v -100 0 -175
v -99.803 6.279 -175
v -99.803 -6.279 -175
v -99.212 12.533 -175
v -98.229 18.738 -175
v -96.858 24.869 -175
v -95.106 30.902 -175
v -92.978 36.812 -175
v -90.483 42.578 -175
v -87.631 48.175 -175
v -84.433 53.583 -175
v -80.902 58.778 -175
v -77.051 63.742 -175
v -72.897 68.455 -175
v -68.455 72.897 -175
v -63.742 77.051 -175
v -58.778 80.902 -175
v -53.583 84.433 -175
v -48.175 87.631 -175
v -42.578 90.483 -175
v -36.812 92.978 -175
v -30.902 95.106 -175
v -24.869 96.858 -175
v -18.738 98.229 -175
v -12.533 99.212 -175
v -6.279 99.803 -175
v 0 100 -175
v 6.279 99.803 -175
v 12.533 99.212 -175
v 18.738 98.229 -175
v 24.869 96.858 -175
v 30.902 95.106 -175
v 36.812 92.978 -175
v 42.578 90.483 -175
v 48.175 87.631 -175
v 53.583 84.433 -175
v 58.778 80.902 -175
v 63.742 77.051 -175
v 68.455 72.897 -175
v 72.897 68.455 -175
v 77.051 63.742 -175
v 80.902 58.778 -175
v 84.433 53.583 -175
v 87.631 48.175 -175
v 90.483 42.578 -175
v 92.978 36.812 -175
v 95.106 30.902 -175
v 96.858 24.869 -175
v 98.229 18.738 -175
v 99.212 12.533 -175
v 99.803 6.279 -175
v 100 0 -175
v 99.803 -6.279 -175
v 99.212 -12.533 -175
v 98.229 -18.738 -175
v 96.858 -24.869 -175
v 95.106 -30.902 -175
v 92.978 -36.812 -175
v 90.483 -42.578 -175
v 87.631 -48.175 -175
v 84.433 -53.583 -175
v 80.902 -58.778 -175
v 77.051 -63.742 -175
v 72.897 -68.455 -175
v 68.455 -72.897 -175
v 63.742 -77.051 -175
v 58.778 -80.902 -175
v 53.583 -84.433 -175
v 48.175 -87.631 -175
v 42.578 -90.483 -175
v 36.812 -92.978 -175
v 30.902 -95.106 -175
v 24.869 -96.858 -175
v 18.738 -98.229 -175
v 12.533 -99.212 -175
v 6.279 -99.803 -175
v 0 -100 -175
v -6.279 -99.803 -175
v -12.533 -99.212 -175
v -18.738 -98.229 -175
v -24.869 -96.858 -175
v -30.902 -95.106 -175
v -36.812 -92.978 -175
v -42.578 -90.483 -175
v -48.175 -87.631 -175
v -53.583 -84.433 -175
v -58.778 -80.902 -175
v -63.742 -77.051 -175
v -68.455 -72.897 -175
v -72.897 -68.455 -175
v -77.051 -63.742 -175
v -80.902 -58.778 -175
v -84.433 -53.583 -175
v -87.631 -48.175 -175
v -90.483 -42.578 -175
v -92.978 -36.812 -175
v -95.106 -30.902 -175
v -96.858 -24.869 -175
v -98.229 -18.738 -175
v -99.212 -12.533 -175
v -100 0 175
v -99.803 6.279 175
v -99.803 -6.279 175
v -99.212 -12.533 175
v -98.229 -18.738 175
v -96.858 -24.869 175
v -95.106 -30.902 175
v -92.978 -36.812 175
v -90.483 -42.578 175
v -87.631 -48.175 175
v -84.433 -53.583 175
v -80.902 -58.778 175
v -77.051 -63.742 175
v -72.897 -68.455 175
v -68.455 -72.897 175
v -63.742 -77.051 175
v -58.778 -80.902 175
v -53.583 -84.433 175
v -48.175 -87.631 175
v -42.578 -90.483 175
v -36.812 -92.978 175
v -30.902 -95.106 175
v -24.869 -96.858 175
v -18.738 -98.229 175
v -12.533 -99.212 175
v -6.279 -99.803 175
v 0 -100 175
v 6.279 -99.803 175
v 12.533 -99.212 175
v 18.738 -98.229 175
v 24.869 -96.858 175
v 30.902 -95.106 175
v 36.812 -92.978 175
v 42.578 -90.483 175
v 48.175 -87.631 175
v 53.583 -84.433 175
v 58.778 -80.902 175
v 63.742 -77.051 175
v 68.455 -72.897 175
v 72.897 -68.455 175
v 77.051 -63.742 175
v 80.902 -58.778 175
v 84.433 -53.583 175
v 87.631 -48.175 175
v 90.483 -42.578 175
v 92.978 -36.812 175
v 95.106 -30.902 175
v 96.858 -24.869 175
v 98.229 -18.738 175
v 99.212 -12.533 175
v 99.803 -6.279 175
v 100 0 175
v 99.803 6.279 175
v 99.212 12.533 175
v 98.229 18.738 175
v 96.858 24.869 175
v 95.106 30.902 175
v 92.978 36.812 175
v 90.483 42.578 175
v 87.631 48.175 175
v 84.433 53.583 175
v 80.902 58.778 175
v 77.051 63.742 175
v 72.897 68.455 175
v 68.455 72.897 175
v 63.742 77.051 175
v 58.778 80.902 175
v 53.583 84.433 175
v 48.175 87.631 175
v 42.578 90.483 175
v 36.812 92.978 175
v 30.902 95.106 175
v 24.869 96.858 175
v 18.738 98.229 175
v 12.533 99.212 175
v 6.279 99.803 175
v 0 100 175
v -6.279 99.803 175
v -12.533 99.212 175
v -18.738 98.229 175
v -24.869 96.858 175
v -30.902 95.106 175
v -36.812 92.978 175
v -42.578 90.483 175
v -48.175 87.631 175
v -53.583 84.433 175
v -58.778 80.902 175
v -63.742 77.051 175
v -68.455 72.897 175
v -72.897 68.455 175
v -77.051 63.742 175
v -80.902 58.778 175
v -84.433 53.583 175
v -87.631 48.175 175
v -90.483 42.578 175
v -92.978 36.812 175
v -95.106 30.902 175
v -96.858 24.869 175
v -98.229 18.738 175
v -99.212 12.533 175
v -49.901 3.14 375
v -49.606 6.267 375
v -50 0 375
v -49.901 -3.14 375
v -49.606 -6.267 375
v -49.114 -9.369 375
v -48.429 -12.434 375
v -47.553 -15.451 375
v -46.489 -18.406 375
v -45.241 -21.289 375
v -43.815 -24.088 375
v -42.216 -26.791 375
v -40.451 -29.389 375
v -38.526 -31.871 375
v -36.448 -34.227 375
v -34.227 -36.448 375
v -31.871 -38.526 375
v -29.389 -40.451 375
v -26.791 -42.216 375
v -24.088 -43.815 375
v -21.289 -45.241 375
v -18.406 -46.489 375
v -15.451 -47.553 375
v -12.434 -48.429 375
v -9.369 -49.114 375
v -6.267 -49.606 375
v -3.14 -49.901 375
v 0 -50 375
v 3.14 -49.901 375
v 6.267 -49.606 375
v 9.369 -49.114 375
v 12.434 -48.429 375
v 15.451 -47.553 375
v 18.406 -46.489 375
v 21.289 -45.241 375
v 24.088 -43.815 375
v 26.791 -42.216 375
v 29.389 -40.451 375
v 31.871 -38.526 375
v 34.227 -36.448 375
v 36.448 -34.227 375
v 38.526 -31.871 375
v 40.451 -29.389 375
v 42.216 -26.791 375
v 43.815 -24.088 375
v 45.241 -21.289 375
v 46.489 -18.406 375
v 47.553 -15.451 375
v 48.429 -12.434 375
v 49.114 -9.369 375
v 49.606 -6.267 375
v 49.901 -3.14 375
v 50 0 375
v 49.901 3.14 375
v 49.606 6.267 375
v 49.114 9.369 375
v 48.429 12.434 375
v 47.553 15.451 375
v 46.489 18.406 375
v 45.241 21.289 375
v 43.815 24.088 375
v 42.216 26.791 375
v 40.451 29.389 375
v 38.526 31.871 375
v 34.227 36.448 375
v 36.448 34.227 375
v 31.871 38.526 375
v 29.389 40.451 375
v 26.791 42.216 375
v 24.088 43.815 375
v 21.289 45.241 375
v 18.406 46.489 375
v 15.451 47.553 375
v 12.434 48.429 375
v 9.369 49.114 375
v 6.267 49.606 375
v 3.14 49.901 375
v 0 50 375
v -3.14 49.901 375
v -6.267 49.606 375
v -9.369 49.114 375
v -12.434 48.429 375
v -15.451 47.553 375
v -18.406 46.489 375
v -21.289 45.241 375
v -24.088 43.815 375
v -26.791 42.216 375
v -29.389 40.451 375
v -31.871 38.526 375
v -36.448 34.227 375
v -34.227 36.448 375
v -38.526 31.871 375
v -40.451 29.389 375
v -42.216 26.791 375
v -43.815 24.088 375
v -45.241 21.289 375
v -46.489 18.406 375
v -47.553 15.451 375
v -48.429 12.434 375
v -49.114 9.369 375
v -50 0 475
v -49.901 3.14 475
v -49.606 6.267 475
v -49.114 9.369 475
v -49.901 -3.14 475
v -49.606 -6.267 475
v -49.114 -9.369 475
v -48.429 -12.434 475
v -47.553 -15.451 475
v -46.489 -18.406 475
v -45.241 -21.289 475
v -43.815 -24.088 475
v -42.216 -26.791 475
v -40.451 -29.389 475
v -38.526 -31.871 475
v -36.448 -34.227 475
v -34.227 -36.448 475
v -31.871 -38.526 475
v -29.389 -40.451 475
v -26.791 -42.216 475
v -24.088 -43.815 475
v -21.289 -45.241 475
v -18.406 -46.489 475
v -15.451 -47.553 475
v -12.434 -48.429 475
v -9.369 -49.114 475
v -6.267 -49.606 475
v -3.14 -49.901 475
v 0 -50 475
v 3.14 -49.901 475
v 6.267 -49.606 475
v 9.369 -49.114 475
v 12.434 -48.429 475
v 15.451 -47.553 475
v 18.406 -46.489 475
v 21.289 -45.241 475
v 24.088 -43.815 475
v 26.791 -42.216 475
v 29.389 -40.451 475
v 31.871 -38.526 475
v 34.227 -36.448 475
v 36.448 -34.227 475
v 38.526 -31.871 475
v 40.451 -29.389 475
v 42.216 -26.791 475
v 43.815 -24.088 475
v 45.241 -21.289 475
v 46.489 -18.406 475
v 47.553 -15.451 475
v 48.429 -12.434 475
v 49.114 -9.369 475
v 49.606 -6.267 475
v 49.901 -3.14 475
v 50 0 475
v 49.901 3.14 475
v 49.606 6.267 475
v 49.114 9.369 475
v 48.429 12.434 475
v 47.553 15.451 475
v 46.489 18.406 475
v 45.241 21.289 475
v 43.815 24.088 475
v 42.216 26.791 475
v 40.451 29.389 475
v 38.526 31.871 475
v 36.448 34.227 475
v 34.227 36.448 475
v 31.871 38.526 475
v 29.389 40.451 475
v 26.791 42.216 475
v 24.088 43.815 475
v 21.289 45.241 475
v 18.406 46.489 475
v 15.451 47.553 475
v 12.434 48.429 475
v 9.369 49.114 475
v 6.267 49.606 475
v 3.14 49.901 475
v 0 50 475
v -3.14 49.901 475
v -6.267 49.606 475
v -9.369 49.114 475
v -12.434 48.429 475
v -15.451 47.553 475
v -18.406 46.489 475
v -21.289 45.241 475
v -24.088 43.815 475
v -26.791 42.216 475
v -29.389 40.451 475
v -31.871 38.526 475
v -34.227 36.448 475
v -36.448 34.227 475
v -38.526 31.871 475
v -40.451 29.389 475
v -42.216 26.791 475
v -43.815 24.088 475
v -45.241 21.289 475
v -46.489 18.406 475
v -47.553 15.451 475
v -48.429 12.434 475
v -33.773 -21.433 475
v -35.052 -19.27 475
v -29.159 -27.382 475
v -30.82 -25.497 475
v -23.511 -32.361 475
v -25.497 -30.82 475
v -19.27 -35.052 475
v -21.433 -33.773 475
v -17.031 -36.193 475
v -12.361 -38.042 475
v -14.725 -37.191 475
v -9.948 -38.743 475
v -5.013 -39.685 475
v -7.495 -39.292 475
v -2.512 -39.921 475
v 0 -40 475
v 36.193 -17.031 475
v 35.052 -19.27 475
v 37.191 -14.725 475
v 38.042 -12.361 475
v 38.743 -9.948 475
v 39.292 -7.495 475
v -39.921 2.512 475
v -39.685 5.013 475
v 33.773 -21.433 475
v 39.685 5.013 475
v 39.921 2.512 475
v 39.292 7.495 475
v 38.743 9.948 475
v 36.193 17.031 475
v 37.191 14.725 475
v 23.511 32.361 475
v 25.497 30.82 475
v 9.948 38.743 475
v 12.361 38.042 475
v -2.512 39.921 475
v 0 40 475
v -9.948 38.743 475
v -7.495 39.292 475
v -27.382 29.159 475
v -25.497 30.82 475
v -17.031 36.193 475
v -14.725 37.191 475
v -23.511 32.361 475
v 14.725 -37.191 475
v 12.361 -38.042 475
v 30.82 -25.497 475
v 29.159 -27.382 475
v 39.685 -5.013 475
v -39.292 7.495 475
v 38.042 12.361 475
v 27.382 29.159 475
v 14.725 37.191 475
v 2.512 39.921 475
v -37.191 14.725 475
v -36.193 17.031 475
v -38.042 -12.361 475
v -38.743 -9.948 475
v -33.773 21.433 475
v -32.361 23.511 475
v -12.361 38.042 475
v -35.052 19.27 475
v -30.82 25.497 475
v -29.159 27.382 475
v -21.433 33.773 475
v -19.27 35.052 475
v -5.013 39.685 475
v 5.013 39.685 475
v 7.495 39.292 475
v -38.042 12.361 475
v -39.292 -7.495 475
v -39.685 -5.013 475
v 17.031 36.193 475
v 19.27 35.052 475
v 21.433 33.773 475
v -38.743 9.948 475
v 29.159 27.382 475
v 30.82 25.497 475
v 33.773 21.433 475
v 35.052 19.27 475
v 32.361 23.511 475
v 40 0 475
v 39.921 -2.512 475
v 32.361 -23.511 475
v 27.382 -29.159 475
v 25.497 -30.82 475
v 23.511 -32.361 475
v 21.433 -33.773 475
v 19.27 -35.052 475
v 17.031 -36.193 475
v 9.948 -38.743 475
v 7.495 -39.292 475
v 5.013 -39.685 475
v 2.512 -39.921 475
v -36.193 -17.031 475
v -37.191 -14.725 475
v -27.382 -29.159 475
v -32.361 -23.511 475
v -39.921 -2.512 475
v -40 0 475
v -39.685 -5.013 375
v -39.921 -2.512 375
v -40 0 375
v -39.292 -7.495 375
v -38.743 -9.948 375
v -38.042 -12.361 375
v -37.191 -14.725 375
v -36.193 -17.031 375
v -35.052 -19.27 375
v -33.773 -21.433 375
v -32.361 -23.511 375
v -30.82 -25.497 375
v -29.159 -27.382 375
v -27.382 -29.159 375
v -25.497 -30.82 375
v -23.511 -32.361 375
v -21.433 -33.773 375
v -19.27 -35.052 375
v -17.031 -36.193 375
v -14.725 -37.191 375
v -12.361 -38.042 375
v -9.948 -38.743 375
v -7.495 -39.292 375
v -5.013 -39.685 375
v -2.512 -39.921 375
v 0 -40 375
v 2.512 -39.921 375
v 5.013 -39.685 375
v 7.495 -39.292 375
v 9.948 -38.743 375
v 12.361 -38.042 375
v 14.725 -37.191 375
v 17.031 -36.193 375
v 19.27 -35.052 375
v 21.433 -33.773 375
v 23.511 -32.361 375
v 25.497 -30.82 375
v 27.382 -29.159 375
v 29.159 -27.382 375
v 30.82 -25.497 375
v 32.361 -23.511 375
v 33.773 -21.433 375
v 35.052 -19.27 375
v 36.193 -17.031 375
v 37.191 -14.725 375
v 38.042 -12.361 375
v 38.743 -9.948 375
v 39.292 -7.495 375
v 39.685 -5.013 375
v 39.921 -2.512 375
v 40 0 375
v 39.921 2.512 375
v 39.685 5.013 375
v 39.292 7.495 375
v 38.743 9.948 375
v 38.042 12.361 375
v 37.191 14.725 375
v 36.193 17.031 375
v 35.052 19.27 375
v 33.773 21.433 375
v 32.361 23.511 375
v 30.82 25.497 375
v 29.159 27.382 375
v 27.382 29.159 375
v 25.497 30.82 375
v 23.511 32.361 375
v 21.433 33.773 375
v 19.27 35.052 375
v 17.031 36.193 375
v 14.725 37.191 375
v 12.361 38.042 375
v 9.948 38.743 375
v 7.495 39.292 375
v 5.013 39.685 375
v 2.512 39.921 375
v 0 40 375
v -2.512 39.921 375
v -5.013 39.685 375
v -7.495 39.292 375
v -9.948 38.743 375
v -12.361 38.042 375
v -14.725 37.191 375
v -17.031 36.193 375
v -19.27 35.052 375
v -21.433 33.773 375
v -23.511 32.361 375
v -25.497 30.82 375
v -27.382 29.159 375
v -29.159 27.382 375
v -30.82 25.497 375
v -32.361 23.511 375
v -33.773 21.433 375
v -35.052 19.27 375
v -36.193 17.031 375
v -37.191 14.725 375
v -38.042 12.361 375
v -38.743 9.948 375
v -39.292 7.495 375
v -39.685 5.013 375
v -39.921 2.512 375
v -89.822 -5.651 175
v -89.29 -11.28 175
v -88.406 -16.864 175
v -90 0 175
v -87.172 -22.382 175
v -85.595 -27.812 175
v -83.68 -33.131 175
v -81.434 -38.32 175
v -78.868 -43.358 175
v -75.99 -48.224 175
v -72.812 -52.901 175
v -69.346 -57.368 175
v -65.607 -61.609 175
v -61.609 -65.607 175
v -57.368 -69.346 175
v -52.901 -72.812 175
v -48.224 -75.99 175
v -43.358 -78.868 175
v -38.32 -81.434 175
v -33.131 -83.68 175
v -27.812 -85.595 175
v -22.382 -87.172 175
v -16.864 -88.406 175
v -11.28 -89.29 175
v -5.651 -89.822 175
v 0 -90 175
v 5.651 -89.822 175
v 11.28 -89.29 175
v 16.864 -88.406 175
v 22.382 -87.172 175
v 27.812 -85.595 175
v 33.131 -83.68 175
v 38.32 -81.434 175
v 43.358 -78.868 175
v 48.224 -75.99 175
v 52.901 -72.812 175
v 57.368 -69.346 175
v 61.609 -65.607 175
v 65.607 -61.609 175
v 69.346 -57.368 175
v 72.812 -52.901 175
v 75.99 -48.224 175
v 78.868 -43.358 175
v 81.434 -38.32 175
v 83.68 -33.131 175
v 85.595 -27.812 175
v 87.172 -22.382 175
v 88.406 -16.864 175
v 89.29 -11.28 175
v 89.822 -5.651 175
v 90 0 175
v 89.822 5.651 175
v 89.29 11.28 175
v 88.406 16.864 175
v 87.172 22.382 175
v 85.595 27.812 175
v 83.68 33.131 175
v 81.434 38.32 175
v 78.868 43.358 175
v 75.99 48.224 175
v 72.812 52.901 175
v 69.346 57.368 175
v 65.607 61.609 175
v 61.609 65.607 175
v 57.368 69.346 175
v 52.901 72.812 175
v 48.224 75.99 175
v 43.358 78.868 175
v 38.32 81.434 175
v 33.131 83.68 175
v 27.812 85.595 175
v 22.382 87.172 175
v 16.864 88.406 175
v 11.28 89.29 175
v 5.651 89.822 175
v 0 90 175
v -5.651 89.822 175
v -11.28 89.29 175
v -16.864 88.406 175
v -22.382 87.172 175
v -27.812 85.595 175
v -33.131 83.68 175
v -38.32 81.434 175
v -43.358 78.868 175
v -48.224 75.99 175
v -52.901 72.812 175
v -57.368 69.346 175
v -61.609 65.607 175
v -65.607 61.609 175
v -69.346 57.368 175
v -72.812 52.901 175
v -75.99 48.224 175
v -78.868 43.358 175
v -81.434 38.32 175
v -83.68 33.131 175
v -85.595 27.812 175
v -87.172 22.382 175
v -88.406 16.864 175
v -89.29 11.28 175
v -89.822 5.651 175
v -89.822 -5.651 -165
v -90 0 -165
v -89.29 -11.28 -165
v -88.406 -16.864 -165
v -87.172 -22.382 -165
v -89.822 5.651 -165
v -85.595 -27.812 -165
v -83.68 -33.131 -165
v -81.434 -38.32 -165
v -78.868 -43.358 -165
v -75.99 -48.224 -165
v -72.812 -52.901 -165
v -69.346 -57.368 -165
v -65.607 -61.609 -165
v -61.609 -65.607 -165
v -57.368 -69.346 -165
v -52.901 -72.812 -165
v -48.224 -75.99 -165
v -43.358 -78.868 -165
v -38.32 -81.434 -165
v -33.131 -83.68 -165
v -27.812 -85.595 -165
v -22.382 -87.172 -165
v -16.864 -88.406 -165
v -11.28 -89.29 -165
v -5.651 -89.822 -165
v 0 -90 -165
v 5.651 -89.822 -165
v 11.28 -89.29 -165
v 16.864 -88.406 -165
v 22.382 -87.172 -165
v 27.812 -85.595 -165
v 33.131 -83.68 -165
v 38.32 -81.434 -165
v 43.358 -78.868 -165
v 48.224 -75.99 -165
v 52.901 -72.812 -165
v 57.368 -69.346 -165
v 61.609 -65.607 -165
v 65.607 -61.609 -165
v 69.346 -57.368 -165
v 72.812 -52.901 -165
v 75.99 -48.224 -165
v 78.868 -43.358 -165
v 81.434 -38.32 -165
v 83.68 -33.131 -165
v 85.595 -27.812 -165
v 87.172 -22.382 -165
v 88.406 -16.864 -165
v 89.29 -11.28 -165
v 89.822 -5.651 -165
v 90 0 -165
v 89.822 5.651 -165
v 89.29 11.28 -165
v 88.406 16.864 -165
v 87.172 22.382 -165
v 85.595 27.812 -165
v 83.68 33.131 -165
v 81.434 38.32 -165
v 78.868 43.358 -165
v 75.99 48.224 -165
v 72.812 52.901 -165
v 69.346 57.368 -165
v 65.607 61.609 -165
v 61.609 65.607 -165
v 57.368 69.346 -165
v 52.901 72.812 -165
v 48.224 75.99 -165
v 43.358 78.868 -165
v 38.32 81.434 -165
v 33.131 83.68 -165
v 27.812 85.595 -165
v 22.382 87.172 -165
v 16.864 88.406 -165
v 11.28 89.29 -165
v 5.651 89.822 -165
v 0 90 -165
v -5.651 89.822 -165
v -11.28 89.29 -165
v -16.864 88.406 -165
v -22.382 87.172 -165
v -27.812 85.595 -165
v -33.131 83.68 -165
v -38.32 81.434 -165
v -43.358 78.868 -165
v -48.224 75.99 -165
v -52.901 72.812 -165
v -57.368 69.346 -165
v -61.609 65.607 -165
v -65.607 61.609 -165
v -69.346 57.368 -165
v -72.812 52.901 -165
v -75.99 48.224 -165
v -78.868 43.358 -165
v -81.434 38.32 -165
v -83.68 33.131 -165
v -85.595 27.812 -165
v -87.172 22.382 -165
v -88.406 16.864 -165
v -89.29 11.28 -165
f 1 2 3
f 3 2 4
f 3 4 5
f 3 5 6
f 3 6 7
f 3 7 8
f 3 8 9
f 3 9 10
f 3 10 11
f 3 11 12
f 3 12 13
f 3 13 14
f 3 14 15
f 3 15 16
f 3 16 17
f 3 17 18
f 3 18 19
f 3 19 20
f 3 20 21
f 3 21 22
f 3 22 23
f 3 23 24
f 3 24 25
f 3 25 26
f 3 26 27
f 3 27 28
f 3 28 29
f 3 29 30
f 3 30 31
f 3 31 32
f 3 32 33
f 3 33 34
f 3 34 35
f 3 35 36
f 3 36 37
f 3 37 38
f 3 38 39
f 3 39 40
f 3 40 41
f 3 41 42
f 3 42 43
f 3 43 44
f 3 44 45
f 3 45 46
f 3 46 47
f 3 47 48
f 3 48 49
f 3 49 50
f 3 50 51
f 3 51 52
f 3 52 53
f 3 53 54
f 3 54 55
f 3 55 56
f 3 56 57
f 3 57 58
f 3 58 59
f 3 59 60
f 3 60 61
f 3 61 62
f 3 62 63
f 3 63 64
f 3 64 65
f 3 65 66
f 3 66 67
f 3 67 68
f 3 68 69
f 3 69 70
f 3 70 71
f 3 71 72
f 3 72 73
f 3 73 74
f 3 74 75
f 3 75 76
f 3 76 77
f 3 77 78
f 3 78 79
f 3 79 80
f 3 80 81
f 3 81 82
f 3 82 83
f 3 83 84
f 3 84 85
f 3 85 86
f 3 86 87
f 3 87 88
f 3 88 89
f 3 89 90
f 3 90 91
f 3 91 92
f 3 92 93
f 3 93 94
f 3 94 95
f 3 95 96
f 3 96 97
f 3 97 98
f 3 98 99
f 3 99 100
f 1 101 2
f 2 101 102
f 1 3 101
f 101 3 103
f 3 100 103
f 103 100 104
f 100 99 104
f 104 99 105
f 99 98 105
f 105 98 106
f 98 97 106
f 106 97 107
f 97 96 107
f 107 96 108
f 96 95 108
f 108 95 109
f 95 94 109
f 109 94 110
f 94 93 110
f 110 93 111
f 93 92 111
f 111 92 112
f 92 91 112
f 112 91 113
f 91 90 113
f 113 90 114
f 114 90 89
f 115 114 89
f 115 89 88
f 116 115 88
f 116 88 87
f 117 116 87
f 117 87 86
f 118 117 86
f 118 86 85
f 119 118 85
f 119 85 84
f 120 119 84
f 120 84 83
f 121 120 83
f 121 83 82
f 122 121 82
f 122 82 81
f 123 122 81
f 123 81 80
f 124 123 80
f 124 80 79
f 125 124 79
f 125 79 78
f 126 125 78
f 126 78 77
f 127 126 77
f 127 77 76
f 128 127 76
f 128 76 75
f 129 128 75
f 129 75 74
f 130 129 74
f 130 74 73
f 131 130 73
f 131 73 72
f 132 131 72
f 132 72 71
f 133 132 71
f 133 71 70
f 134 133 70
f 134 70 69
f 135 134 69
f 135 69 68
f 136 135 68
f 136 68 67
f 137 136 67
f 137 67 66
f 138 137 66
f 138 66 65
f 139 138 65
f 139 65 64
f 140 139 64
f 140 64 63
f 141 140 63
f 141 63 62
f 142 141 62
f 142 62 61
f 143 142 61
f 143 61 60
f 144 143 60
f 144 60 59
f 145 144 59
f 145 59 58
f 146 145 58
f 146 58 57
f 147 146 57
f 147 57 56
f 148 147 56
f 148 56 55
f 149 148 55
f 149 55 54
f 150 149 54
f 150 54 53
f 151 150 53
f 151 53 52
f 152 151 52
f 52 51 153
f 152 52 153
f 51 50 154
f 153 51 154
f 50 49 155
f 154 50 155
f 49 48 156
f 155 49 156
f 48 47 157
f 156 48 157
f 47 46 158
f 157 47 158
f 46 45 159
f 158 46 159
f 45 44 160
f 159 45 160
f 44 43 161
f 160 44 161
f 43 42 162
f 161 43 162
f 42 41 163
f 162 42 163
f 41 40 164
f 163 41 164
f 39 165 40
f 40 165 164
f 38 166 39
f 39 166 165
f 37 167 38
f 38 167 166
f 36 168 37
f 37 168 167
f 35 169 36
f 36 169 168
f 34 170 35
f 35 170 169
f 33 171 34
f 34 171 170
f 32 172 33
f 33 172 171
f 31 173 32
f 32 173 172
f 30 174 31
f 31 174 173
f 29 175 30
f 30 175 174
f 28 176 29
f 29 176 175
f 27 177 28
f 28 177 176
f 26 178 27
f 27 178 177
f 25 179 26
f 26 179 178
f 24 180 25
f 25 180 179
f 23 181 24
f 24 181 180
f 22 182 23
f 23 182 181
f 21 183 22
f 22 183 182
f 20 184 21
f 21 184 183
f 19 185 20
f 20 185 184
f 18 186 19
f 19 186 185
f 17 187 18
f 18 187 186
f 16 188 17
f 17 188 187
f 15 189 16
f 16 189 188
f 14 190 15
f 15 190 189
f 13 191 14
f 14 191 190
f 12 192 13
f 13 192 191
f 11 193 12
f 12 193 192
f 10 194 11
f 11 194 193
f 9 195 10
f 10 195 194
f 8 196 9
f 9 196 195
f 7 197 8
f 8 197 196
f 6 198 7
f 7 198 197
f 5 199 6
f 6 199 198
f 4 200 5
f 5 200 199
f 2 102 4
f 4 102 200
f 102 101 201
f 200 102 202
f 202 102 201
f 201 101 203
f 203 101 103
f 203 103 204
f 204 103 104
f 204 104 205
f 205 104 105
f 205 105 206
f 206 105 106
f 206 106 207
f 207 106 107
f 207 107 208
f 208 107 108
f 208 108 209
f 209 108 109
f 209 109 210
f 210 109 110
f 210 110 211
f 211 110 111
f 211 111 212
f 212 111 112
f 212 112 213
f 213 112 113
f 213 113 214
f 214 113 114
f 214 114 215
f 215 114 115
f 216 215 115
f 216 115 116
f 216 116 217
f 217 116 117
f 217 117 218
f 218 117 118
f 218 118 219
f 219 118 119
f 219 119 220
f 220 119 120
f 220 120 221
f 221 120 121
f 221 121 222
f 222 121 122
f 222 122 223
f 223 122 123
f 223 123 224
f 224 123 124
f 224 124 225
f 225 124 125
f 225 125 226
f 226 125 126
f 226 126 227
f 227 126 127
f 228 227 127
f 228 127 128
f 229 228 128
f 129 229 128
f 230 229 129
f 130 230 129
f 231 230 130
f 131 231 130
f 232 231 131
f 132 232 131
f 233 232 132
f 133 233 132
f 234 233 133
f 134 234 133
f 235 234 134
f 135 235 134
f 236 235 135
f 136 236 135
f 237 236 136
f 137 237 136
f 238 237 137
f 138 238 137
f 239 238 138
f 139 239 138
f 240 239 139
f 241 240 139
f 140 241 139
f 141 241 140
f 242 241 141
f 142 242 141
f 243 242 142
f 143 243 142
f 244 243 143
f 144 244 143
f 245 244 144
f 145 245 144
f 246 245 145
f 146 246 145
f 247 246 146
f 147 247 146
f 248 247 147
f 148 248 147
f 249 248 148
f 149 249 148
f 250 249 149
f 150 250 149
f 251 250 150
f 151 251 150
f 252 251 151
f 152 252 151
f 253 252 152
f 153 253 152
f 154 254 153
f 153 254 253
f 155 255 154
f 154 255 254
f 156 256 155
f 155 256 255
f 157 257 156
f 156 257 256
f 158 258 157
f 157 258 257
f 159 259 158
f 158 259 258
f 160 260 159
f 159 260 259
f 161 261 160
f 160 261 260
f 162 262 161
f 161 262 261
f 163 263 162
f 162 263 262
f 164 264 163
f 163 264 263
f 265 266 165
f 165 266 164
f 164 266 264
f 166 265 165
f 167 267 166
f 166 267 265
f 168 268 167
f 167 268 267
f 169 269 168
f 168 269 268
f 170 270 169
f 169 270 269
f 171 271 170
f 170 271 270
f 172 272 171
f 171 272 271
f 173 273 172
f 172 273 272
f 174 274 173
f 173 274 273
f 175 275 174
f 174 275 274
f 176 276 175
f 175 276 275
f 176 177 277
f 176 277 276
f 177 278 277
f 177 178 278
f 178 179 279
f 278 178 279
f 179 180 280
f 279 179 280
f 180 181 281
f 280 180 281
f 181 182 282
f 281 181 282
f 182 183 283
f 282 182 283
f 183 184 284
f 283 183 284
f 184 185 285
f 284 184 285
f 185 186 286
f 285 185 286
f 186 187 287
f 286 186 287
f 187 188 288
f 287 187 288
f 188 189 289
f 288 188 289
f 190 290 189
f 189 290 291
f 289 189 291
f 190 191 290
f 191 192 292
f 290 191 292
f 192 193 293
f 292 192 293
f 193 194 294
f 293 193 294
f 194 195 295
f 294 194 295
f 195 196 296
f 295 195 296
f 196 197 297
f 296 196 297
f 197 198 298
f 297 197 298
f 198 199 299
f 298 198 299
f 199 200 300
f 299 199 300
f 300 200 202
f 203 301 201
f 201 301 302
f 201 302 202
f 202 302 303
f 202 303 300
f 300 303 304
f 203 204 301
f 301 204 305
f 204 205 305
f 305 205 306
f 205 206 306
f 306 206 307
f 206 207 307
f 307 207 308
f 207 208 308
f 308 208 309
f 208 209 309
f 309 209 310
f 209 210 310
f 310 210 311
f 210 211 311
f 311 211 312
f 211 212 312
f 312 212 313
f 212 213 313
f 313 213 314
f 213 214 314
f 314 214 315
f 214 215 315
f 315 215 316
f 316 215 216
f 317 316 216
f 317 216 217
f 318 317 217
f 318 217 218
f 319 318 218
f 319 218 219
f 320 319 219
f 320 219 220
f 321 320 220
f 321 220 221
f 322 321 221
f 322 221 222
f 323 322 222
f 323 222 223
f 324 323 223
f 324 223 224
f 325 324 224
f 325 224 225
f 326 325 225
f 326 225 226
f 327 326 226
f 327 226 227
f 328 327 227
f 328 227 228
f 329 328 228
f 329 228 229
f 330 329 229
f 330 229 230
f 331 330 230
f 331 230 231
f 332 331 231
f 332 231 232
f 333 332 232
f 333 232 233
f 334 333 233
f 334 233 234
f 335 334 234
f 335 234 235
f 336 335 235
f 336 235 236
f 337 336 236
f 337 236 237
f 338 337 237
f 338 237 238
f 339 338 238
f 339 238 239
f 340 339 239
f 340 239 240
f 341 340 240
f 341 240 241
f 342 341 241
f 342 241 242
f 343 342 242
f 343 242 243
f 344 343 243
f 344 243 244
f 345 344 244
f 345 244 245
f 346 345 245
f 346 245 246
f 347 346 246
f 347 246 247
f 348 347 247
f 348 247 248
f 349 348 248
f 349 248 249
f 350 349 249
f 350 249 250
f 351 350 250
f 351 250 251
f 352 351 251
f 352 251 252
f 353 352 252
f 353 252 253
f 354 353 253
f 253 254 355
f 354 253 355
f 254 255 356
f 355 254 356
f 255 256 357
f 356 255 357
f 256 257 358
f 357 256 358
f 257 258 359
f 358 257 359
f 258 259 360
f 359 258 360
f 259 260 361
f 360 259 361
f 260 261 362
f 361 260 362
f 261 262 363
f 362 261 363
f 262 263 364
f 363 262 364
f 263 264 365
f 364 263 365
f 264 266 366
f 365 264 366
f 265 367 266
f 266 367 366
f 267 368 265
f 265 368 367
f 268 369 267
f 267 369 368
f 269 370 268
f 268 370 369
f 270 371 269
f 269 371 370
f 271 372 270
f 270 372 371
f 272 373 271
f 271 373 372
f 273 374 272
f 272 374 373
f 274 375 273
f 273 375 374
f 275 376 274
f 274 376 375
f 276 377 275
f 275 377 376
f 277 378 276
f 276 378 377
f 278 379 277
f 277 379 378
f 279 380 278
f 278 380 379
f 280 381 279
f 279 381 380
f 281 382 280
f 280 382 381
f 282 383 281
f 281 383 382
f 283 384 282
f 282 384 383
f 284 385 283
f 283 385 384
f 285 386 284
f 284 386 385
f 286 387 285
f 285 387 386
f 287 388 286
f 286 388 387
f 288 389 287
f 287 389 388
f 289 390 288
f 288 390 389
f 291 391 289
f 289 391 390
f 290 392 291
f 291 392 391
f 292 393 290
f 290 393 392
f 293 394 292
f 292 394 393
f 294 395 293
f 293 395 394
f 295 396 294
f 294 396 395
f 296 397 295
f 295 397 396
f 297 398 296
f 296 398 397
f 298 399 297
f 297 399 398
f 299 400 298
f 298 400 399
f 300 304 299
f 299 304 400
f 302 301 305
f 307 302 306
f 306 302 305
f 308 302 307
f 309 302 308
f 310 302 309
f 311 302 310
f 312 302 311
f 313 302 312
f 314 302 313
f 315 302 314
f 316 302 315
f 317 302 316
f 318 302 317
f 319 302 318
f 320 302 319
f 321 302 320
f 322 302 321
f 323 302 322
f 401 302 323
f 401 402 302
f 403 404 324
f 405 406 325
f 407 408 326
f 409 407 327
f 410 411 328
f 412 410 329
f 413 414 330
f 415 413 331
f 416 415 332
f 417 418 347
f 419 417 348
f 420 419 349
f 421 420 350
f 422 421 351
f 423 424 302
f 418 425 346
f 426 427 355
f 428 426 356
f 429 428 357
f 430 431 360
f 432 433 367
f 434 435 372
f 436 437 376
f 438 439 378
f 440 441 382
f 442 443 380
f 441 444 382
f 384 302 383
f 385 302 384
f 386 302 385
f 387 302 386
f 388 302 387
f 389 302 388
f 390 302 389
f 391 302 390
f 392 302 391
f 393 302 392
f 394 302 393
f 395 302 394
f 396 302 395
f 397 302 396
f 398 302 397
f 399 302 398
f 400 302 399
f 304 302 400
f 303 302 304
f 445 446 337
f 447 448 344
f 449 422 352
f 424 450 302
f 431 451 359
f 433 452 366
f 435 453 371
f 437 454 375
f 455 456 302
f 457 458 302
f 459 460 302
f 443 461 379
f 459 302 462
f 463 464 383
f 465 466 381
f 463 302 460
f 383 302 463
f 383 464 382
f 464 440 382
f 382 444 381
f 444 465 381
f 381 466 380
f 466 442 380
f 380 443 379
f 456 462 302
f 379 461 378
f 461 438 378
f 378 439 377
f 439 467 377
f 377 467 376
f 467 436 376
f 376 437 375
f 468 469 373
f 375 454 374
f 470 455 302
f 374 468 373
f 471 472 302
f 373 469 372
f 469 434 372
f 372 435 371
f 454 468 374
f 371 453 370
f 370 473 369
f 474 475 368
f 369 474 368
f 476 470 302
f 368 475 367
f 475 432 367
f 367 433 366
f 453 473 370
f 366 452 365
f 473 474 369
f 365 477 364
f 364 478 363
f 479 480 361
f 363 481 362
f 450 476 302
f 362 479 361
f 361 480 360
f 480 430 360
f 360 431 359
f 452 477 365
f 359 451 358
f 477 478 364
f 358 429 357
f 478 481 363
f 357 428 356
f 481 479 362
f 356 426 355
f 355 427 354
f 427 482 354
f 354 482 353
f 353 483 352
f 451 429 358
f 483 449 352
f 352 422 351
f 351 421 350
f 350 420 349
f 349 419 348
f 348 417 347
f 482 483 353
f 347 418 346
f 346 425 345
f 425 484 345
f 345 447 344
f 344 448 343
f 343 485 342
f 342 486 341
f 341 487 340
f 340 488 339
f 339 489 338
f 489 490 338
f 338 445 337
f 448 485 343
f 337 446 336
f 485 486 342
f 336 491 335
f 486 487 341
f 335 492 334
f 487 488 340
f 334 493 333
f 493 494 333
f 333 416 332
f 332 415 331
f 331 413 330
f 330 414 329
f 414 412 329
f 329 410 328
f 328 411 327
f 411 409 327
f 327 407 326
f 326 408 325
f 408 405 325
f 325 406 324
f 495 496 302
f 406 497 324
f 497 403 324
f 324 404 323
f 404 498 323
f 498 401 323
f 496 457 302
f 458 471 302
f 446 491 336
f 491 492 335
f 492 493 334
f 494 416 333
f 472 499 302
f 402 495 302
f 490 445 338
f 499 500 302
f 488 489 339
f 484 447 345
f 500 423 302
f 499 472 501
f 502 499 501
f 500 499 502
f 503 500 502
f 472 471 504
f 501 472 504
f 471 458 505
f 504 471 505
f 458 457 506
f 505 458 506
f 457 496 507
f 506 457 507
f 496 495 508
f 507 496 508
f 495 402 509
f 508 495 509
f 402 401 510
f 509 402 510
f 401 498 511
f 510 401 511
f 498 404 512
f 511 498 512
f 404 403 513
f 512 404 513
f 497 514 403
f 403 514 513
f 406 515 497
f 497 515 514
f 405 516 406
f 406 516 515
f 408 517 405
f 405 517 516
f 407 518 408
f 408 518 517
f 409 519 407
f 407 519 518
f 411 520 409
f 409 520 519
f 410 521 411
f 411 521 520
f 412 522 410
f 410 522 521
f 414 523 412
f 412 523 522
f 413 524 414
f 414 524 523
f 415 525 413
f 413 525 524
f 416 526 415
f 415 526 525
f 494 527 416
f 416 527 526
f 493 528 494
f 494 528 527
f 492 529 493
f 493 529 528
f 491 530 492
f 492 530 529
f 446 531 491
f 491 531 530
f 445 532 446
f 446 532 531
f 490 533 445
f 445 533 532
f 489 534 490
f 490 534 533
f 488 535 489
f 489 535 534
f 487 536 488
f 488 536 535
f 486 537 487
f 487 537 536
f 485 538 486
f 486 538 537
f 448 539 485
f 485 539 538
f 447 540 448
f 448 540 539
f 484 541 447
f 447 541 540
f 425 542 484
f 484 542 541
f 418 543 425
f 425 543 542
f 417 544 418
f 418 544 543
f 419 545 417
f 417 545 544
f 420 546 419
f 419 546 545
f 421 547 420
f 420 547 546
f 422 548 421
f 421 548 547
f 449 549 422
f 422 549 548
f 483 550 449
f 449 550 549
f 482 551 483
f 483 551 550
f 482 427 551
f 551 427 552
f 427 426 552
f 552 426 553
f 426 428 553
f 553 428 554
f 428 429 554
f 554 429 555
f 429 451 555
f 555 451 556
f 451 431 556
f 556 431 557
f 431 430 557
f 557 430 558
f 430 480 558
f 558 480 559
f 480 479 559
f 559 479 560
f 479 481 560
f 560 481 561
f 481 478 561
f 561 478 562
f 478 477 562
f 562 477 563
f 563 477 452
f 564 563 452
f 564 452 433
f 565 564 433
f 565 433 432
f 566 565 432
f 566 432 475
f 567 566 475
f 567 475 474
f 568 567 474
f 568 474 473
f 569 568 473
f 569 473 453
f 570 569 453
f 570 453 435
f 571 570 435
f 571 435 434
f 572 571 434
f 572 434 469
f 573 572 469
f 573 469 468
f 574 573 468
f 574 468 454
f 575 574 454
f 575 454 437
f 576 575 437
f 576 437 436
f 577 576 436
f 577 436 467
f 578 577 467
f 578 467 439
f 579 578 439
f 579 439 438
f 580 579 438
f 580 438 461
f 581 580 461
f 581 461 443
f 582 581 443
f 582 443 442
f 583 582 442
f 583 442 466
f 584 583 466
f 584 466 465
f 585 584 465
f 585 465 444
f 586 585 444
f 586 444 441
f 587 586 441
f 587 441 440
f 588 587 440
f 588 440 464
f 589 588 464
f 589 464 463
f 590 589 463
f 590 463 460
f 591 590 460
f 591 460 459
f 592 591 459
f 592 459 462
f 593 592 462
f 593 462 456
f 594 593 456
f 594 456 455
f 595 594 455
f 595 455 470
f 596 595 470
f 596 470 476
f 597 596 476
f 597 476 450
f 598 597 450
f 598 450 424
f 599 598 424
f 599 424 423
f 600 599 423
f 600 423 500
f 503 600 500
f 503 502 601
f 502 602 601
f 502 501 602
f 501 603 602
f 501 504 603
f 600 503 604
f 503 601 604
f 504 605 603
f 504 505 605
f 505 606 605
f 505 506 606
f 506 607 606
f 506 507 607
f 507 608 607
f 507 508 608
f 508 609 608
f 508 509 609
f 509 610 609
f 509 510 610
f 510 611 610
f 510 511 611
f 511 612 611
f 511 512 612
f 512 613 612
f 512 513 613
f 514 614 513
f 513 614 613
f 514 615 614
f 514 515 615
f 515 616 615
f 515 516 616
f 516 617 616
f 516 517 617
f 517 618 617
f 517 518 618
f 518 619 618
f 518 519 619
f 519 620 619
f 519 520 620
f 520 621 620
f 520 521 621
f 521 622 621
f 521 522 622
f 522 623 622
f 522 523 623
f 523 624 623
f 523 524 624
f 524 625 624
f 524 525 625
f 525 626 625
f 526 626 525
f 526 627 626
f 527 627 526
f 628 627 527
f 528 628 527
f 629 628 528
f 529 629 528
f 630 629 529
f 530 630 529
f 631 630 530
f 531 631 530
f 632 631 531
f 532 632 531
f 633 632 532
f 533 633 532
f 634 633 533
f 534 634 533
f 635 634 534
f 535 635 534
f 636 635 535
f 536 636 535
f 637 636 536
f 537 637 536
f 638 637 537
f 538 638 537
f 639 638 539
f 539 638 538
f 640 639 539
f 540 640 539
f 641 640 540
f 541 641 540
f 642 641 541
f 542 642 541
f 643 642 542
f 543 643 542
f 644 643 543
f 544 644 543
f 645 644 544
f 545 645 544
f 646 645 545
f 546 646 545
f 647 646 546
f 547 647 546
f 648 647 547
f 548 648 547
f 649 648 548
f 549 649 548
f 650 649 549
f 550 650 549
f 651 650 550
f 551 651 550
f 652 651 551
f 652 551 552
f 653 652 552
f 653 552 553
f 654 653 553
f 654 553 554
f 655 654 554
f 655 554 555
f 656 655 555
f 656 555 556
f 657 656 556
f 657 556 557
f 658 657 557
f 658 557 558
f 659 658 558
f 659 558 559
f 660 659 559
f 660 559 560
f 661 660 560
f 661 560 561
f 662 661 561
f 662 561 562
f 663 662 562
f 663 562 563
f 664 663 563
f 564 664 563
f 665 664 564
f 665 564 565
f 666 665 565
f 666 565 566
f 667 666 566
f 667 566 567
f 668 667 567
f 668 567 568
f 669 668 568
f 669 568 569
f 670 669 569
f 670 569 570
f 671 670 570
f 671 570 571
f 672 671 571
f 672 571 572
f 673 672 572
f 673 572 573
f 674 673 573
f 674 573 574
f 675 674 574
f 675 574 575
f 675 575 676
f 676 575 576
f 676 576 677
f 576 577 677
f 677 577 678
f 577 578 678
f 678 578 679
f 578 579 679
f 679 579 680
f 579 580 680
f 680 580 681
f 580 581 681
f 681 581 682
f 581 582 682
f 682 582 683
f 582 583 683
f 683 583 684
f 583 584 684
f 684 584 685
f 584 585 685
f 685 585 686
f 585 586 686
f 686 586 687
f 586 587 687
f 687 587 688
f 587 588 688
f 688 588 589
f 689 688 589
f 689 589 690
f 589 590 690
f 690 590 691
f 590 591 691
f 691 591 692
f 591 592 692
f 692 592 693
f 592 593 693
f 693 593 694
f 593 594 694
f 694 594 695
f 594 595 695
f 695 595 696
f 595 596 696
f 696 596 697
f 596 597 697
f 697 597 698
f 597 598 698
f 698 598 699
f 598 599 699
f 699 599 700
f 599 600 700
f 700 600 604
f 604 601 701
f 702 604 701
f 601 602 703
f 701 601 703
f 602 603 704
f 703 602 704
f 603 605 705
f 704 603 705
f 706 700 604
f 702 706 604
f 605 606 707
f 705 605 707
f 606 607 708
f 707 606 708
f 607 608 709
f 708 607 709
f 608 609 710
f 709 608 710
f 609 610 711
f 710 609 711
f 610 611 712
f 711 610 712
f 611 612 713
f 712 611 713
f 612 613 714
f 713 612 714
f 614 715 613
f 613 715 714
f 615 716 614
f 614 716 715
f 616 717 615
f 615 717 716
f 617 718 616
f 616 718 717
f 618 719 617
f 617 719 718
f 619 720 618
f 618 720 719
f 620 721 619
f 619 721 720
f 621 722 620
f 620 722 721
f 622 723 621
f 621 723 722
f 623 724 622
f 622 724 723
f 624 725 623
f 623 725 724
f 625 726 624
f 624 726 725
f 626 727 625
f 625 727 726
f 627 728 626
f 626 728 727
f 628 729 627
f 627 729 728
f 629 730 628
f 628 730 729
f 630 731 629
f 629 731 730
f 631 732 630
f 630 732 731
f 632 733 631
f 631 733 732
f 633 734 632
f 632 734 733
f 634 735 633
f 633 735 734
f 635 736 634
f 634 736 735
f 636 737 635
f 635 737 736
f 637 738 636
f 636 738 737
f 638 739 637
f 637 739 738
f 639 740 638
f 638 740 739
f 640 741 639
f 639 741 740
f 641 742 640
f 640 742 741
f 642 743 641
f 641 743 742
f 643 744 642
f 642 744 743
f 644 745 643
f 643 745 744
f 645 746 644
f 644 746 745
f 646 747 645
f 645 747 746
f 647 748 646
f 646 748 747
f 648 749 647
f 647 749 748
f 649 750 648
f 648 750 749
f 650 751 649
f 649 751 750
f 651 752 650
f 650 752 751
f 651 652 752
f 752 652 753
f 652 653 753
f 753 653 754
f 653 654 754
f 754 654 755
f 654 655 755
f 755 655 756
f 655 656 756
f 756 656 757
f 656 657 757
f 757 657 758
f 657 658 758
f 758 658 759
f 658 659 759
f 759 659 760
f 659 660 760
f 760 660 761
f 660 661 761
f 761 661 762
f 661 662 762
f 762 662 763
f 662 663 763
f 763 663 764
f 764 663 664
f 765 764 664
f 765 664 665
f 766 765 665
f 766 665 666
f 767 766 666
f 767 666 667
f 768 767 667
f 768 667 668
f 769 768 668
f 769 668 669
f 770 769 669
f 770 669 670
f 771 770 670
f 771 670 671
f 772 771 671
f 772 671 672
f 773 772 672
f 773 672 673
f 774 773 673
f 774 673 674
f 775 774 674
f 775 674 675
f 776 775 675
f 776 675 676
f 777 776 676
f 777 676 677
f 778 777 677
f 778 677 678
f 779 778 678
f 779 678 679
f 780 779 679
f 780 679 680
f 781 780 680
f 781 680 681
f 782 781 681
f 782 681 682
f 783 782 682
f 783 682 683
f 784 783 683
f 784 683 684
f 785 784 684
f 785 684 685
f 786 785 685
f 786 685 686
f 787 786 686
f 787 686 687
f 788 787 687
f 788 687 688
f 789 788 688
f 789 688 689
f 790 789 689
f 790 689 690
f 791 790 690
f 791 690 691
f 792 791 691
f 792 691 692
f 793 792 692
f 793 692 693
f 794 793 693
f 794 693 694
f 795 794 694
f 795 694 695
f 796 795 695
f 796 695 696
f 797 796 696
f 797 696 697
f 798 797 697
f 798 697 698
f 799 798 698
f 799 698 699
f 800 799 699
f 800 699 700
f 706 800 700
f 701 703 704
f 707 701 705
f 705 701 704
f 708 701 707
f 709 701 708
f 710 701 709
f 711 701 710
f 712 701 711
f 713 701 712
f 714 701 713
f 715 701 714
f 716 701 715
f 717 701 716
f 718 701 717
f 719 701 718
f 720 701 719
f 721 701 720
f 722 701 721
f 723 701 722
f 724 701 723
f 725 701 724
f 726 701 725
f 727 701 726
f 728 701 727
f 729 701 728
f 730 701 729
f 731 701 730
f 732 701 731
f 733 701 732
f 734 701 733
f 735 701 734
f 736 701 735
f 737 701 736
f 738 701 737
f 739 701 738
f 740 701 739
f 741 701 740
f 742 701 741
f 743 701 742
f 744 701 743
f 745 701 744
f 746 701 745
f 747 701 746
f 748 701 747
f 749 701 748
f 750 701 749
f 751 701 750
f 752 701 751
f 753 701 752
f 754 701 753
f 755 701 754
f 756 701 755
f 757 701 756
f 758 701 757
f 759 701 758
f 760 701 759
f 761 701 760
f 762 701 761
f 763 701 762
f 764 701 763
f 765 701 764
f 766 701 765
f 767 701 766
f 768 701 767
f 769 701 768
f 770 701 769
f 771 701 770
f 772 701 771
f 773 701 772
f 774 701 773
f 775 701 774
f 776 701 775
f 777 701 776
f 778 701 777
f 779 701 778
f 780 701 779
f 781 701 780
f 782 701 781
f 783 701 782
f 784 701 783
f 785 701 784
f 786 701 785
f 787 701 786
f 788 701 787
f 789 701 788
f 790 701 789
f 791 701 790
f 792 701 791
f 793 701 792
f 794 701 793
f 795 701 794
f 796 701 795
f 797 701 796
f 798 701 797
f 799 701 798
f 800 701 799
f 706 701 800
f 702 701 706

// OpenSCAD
difference() {
	union() {
		cylinder(r=100,h=350,center=true,$fn=100);
		translate([0,0,175]) cylinder(r1=100,r2=50,h=200,$fn=100);
		translate([0,0,375]) cylinder(r=50,h=100,$fn=100);
	}
	union() {
		translate([0,0,5]) cylinder(r=90,h=340,center=true,$fn=100);
		translate([0,0,175]) cylinder(r1=90,r2=40,h=200,$fn=100);
		translate([0,0,375]) cylinder(r=40,h=102,$fn=100);
	}
}
